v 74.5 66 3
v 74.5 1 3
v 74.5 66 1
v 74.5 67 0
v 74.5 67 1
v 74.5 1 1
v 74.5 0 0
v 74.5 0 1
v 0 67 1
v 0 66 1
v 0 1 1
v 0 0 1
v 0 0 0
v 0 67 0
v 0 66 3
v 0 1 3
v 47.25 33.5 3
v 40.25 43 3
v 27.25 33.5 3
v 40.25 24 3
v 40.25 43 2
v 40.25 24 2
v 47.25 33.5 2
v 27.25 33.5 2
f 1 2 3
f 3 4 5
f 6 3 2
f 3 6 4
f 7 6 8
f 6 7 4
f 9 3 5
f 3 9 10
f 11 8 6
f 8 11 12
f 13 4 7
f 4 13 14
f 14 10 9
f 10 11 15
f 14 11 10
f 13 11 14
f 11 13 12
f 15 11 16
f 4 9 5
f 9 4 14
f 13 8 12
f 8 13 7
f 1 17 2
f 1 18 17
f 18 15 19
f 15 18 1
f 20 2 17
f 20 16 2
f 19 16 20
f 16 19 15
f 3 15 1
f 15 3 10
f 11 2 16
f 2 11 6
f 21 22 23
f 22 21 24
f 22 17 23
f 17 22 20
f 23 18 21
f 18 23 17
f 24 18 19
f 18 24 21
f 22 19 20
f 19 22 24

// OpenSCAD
DIM = [
	76.5, // Spielerinnenablage richtung
	69, // Links-Rechts
	29
];



difference(){

	union(){
		cube([ DIM.x-2 , DIM.y-2 , 1 ]);
		translate([ 0 , 1 , 1 ]) cube([ DIM.x-2 , DIM.y-4 , 2 ]);
	}
	
	// Symbol
	translate([ 0.5*(DIM.x-2) , 0.5*(DIM.y-2) , 2 ]) Symbol();
}

module Symbol () {
	
	X1 = 13  ; X2 = 13+7 ; 
	Y1 = 9.5 ; Y2 = 9.5+9.5 ; 
	Z  = 5   ;
	CubePoints = [
	  [  0,  Y1,  0 ],  //0
	  [ X1,  0,  0 ],  //1
	  [ X2, Y1,  0 ],  //2
	  [ X1, Y2,  0 ],  //3

	  [  0,  Y1,  Z ],  //4
	  [ X1,  0,  Z ],  //5
	  [ X2,  Y1,  Z ],  //6
	  [ X1,  Y2,  Z ]]; //7
	  
	CubeFaces = [
	  [0,1,2,3],  // bottom
	  [4,5,1,0],  // front
	  [7,6,5,4],  // top
	  [5,6,2,1],  // right
	  [6,7,3,2],  // back
	  [7,4,0,3]]; // left
	  
	translate([ -0.5*(X2) , -Y1 , 0 ]) polyhedron( CubePoints, CubeFaces );
	
}
